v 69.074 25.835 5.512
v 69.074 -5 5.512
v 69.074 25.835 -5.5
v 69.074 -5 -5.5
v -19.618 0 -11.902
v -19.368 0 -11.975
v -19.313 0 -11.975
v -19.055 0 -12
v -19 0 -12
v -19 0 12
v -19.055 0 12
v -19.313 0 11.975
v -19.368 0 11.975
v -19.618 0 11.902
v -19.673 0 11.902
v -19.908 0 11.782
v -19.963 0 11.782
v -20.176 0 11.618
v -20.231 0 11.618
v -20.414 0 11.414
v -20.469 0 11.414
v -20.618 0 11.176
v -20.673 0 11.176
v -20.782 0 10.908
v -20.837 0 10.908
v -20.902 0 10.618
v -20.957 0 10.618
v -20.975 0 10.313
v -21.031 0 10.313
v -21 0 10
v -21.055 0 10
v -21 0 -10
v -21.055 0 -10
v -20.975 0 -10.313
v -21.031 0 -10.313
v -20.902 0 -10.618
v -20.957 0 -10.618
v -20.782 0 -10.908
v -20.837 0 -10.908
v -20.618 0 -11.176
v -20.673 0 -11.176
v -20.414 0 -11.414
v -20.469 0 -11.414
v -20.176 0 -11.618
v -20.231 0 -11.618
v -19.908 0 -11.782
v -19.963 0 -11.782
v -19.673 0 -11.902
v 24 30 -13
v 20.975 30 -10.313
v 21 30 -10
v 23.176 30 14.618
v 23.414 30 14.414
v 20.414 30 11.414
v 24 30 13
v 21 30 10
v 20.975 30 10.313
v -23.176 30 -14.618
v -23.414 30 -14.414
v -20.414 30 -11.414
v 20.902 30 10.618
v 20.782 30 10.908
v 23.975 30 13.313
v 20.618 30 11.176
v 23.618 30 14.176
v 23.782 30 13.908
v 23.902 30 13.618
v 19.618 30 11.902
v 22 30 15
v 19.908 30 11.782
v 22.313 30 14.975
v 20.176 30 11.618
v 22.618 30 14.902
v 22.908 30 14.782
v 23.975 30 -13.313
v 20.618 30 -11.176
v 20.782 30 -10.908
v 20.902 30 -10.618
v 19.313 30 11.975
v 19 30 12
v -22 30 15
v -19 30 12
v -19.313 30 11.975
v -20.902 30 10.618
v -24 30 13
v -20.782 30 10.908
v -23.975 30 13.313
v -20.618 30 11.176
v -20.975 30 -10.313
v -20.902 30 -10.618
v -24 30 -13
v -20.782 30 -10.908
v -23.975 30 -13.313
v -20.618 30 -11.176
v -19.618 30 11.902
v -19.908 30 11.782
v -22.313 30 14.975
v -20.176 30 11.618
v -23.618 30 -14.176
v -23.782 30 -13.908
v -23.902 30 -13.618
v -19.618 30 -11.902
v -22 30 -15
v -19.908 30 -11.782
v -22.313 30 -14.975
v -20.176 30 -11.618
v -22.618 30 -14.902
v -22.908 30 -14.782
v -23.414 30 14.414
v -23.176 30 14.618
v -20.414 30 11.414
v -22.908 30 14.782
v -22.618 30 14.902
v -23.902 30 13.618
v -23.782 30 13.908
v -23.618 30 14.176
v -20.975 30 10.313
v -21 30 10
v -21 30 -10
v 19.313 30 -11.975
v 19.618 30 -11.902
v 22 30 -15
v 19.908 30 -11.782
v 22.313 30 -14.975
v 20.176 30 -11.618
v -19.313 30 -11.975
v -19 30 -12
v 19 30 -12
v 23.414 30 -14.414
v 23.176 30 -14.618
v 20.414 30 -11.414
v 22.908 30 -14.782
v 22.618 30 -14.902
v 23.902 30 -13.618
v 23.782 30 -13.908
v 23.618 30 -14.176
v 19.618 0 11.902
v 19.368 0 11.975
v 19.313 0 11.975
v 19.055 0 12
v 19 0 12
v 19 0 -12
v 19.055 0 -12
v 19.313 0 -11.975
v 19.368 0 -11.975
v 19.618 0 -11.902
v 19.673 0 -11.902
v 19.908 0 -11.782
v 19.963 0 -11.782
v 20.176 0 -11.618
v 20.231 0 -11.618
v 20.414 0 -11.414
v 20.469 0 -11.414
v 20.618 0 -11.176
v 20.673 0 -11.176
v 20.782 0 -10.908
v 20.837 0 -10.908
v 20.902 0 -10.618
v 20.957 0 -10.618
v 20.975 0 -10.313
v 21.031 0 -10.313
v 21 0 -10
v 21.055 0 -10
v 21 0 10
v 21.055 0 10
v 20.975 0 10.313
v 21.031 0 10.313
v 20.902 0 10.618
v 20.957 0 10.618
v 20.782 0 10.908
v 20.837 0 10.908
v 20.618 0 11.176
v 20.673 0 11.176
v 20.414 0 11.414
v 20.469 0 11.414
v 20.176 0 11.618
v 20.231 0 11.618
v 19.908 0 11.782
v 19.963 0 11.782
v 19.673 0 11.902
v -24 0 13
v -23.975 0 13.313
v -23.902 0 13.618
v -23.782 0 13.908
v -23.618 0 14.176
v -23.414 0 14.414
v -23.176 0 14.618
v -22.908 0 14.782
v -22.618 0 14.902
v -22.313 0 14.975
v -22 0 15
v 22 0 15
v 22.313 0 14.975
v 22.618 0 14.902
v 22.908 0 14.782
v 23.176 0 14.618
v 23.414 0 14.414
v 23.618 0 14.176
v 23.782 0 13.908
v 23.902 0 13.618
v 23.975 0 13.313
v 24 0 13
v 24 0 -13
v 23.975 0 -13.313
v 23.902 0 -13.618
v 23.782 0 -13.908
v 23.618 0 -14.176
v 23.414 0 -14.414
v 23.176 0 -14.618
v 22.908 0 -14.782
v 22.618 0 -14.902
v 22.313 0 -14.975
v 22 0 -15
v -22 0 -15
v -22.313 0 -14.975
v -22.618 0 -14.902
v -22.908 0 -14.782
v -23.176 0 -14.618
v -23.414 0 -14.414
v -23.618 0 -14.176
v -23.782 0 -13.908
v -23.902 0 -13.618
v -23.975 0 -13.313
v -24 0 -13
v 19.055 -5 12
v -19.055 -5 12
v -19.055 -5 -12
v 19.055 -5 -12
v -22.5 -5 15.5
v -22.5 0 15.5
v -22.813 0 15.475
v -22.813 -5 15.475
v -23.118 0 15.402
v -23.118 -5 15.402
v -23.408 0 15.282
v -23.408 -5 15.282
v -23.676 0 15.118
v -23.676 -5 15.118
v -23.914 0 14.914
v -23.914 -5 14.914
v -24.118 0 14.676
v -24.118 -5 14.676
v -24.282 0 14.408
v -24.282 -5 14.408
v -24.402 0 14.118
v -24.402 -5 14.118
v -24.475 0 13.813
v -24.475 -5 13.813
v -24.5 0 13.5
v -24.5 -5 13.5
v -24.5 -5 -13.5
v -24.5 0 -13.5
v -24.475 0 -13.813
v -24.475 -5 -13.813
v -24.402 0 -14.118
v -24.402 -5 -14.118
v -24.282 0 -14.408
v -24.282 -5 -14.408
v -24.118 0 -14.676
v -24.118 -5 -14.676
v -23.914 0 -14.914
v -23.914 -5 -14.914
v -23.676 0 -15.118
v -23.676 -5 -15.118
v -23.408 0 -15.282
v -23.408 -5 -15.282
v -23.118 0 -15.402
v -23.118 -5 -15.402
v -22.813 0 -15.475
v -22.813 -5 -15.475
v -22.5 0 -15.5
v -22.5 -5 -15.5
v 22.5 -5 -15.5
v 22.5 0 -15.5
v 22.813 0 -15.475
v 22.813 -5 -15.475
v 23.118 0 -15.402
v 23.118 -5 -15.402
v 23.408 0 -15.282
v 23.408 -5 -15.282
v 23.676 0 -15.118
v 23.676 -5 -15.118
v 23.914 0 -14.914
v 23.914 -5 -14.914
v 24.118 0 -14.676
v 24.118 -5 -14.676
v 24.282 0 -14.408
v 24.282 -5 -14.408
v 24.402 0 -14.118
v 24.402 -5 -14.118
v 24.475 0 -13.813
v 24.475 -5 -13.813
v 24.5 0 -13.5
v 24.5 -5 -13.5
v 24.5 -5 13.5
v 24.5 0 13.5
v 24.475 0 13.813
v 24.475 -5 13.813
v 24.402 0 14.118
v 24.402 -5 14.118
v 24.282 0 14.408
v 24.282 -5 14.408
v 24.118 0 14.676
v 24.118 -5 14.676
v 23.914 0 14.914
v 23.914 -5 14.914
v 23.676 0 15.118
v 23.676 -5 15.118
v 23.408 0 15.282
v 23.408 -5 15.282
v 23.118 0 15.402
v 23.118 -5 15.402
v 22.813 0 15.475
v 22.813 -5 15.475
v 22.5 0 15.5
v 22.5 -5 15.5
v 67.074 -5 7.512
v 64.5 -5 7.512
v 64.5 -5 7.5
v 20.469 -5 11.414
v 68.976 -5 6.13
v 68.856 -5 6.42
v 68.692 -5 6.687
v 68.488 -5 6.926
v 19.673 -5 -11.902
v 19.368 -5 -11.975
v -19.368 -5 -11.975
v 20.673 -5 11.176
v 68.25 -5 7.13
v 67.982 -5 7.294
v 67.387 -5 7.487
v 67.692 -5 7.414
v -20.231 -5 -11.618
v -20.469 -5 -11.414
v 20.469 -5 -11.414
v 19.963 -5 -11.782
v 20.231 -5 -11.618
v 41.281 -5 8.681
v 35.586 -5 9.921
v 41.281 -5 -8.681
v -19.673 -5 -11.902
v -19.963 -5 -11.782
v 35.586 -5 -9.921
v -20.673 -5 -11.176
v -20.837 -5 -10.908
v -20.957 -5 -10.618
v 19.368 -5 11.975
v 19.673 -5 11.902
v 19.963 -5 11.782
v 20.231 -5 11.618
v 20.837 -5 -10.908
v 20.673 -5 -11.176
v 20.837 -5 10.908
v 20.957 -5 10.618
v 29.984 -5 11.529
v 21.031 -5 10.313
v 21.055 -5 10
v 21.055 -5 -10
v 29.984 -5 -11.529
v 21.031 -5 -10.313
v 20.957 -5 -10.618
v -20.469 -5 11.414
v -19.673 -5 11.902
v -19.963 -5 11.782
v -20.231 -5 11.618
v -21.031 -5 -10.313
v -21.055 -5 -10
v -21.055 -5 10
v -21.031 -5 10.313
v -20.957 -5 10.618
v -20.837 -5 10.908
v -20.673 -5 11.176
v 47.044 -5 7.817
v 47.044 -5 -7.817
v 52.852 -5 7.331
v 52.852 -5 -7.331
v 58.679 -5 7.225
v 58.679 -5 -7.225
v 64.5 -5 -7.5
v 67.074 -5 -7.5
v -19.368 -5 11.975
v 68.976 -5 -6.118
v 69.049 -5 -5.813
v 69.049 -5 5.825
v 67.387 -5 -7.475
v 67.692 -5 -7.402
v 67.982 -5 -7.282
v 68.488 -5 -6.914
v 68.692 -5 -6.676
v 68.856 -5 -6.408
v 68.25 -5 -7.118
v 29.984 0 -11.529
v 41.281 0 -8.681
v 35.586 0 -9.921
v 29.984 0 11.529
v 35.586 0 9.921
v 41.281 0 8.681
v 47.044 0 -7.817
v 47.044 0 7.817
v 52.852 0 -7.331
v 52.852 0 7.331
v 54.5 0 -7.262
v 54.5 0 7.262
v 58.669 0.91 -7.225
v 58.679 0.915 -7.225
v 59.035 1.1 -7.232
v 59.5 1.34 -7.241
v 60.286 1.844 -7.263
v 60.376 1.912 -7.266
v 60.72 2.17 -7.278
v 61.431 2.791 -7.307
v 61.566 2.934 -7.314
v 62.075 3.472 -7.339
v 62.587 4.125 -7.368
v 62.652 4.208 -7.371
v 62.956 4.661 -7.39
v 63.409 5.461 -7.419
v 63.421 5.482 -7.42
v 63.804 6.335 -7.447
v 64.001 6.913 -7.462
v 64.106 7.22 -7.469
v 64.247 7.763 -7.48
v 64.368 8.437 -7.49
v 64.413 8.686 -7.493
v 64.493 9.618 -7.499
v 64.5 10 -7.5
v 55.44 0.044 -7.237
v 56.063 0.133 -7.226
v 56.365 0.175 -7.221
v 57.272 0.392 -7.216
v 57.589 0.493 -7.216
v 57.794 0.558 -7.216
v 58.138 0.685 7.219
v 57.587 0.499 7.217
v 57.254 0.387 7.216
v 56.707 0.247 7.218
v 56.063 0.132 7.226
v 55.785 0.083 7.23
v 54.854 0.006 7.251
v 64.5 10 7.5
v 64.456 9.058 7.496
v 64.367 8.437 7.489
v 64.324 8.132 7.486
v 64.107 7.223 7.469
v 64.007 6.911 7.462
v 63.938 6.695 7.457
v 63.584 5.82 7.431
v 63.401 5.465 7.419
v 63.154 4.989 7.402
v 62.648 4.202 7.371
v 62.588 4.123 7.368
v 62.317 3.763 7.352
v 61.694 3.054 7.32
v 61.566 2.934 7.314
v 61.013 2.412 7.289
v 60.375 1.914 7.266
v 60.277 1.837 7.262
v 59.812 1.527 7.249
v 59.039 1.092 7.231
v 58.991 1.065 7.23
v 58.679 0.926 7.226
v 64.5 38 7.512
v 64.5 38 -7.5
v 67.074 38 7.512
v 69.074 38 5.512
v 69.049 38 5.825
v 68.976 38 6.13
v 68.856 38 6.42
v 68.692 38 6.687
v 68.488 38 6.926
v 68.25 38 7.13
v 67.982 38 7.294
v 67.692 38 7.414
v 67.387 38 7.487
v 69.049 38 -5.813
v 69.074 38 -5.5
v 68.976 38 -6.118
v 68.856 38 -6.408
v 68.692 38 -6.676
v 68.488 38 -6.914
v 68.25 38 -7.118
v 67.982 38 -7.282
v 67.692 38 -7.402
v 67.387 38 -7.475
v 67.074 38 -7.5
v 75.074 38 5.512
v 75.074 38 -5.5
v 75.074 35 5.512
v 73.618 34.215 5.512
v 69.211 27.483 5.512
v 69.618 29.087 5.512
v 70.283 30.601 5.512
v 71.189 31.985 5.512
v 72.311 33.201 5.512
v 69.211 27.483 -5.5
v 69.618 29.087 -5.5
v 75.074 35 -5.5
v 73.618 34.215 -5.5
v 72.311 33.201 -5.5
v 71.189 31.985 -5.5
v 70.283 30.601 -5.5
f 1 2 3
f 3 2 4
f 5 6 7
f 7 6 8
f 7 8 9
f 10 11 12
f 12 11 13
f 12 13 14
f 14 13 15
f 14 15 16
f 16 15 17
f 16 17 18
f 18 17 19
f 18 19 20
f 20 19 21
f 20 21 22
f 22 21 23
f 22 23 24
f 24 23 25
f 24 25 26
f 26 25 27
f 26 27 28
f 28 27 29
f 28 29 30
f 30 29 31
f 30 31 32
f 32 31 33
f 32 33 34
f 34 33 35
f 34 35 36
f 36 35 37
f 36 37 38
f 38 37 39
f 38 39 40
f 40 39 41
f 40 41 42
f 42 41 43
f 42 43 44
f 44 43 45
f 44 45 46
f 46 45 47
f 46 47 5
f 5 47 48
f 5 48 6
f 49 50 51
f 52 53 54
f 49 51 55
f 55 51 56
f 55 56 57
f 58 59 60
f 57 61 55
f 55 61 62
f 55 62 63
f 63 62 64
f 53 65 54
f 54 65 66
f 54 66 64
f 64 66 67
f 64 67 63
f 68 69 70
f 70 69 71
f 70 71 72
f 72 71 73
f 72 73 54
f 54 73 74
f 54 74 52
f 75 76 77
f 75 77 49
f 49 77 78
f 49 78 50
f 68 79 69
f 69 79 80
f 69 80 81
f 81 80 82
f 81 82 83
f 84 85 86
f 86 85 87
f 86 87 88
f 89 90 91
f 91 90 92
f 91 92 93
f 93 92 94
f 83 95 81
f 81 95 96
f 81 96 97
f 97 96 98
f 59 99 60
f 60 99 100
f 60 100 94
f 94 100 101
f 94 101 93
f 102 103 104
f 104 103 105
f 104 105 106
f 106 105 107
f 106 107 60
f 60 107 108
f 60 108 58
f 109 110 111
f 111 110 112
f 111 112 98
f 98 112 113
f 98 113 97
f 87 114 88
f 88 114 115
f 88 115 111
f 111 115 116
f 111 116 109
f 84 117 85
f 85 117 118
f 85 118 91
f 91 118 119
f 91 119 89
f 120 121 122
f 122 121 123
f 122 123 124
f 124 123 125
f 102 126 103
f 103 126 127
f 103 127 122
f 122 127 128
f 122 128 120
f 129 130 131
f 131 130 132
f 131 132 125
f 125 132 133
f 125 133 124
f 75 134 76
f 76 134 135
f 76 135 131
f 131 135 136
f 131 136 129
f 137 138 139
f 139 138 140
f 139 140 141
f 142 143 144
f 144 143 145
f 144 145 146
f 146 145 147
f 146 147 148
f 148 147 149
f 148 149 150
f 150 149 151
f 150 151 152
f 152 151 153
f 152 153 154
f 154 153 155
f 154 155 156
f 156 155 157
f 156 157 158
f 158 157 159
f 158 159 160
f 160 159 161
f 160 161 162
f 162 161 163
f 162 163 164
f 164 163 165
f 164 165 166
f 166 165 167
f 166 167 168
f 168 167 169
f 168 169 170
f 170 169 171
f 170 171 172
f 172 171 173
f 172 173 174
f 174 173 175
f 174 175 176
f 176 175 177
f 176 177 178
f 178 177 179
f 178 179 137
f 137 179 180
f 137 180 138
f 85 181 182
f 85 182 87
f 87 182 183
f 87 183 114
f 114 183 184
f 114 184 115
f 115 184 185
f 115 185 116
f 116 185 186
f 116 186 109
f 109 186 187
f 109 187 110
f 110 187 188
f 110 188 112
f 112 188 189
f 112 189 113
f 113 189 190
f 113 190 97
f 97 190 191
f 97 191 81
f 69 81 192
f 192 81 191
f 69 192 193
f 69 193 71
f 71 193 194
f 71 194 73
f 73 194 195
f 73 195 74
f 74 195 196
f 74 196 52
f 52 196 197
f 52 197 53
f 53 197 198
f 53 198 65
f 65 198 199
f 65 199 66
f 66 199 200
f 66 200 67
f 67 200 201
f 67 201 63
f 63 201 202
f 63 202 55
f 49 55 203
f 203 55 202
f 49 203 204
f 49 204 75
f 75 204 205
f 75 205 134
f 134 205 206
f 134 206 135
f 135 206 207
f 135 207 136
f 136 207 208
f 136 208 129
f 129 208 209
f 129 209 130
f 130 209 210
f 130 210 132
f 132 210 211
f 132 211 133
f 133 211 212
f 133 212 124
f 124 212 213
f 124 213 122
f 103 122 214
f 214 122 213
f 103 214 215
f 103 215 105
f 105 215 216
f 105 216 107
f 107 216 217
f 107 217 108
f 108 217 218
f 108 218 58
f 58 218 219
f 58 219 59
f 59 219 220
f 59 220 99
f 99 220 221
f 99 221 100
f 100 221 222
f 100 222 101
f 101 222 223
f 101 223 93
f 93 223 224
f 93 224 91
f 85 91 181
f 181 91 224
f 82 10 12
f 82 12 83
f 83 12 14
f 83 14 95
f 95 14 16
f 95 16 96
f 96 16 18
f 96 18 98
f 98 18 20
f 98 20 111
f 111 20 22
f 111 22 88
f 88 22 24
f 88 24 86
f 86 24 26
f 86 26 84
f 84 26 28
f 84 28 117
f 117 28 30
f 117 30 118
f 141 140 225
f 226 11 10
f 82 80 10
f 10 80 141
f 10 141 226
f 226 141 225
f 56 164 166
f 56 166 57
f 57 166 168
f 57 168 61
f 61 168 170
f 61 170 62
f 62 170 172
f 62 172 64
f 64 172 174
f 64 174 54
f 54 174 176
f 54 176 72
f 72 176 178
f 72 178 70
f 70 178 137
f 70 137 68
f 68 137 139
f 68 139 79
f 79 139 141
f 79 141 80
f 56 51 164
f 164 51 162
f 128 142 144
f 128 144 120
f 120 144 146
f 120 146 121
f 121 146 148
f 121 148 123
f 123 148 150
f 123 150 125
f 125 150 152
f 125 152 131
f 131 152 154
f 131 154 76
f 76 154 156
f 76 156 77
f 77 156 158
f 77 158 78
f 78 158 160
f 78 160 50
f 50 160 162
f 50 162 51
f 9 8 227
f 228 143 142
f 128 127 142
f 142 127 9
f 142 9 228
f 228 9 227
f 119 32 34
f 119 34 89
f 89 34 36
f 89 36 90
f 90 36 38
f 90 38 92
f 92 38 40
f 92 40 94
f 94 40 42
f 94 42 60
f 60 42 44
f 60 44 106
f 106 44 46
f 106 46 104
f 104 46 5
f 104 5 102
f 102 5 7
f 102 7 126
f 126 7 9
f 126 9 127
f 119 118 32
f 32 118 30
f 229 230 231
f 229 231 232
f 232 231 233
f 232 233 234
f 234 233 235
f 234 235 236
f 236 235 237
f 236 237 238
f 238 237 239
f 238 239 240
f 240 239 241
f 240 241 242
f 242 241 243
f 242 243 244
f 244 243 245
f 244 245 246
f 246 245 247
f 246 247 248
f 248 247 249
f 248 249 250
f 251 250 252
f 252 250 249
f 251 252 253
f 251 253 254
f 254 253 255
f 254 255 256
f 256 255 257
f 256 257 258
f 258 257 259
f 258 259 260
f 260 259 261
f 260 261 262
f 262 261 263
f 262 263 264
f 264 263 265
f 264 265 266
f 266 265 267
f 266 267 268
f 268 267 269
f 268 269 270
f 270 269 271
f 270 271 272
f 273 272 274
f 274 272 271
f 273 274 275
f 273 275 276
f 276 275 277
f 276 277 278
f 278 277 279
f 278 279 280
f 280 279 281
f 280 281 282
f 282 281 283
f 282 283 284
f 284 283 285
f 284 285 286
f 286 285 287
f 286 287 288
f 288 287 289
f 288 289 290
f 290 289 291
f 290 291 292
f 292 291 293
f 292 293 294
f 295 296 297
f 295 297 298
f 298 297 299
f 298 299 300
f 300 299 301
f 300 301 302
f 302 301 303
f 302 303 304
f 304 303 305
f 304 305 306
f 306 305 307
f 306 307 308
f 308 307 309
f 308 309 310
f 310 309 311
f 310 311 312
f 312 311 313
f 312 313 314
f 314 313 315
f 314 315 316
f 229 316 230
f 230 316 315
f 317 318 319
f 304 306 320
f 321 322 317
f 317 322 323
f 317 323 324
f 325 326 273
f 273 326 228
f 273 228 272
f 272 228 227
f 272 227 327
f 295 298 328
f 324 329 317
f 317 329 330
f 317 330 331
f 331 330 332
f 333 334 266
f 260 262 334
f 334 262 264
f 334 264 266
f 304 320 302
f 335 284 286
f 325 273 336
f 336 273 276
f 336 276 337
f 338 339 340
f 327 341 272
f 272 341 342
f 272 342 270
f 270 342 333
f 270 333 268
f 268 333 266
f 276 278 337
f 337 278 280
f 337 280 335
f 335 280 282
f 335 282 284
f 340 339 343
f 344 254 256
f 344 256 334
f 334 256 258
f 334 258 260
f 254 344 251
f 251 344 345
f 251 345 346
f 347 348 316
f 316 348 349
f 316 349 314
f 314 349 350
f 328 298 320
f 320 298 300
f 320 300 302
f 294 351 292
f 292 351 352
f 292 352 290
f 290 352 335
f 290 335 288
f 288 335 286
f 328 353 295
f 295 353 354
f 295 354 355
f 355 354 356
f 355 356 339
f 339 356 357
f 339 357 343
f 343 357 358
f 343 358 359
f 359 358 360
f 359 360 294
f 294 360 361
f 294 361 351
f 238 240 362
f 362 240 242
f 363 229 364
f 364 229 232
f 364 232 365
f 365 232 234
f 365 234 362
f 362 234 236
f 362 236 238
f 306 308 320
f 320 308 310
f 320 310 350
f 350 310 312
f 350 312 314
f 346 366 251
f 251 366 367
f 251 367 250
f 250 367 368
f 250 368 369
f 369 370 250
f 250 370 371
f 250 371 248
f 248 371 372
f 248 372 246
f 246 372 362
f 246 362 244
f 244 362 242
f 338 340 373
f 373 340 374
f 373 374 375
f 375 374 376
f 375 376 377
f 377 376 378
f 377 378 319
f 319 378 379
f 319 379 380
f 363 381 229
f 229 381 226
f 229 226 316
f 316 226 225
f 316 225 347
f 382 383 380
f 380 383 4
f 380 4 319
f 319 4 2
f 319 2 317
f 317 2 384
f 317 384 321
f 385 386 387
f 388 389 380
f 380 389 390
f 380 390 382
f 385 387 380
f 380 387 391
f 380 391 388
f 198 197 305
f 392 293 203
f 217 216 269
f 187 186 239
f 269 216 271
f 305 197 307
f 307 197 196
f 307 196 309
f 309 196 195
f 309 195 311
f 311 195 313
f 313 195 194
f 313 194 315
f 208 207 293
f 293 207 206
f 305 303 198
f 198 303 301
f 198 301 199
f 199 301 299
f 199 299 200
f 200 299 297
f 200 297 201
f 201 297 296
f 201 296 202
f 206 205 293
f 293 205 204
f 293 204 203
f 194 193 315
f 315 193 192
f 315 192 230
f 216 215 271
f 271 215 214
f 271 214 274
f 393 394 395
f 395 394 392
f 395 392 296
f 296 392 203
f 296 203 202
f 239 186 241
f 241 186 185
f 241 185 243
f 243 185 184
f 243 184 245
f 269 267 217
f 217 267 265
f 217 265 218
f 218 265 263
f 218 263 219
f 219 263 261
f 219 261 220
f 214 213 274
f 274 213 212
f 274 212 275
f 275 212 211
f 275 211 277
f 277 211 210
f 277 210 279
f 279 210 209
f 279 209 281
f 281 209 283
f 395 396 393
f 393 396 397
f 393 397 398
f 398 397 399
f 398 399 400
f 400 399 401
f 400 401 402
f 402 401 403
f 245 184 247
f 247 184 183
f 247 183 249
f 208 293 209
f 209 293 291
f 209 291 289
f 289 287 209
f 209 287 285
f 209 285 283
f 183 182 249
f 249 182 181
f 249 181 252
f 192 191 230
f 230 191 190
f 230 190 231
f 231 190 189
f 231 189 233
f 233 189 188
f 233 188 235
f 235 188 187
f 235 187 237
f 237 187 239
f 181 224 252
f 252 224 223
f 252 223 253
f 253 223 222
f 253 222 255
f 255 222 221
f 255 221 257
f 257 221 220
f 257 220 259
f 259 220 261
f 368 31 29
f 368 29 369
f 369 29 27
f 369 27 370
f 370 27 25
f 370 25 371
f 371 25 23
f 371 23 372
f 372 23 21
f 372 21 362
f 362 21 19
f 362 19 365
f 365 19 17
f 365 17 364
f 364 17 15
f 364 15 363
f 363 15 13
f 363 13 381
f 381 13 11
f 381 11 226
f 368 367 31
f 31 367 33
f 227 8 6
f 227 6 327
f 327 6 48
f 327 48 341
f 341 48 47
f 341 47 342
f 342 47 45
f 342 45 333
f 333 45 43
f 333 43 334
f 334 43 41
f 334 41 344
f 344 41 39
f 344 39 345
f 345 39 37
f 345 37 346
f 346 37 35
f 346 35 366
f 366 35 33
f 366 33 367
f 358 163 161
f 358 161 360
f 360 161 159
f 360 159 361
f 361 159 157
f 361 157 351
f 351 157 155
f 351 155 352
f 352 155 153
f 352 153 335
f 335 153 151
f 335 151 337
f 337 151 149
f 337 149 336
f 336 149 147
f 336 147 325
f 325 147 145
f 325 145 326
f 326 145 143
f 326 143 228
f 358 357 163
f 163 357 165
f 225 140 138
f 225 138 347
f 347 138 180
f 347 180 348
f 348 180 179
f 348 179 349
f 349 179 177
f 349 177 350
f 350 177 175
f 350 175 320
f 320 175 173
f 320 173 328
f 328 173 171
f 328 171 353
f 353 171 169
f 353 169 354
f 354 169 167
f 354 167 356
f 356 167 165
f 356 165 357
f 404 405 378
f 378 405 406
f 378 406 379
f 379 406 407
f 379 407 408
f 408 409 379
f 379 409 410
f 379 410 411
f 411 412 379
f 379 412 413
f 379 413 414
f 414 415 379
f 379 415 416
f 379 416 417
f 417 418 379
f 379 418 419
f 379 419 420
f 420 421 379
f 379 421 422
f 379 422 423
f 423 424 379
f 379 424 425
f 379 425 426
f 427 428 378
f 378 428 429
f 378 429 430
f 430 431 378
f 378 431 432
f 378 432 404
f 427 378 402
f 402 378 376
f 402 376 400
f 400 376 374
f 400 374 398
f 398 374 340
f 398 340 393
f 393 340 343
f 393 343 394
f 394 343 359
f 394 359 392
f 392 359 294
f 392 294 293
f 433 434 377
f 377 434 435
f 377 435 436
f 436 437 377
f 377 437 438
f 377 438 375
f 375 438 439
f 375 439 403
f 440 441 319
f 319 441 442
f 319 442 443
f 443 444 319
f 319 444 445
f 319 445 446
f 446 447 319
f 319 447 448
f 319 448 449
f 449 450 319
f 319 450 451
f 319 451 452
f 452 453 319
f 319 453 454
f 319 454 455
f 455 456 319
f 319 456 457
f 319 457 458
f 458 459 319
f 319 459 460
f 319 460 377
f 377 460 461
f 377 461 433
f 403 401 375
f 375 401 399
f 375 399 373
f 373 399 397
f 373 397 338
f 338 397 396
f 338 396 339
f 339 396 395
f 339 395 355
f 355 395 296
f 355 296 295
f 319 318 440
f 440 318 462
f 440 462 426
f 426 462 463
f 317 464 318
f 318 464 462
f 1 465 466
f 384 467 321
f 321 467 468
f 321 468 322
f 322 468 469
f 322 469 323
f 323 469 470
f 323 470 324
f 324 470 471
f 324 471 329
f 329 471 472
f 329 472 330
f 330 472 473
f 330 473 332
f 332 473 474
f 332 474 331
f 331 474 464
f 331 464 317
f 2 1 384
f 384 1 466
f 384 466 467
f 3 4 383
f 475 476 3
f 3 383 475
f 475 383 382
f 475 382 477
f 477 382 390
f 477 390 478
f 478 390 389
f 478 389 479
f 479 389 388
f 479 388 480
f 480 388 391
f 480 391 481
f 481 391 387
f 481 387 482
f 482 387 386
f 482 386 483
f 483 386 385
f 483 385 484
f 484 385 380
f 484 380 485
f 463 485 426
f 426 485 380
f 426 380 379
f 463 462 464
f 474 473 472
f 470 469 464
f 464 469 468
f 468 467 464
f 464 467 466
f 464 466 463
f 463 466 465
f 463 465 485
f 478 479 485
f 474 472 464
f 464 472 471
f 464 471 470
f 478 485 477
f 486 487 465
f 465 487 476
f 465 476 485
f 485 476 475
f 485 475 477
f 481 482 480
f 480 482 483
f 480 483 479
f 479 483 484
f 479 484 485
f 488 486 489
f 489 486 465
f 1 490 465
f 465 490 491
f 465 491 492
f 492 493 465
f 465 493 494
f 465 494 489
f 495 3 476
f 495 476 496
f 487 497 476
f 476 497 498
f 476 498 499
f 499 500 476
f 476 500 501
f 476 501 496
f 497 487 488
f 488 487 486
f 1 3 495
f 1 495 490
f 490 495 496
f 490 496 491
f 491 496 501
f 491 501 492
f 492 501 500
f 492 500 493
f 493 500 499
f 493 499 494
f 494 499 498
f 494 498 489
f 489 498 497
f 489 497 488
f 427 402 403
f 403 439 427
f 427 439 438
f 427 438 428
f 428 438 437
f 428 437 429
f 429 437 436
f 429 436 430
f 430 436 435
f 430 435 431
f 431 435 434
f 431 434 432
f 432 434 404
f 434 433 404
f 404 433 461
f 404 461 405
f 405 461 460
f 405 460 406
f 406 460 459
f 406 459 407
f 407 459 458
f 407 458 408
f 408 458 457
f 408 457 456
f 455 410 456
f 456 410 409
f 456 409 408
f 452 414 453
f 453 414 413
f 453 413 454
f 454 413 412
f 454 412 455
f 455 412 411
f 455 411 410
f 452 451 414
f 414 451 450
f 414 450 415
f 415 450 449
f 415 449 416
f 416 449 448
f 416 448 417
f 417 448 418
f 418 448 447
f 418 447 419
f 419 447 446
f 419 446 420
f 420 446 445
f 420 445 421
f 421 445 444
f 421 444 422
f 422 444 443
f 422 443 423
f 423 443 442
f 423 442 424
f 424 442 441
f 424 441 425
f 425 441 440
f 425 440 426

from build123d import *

# Parameters (mm, degrees)
SALIENTE_EXTRUIR2_DEPTH      = 30
SALIENTE_EXTRUIR3_DEPTH      = 5
SALIENTE_EXTRUIR6_DEPTH      = 5
SALIENTE_EXTRUIR7_DEPTH      = 38
SALIENTE_EXTRUIR7_DEPTH_BACK = 5
CROQUIS6_W                   = 11.011799298781469
CROQUIS6_H                   = 3.000000000000007
SALIENTE_EXTRUIR8_DEPTH      = 6
REDONDEO1_R                  = 10
REDONDEO2_R                  = 10


with BuildPart() as part:
    # Croquis1 → Saliente-Extruir2 (new body)
    with BuildSketch(Plane(origin=(0, 0, 0), x_dir=(1, 0, 0), z_dir=(0, 1, 0))):
        with BuildLine():
            Line((-22.000000000000007, 14.99999999999999), (21.999999999999964, 14.999999999999993))
            ThreePointArc((21.999999999999964, 14.999999999999993), (23.414213562373074, 14.414213562373087), (23.99999999999998, 12.999999999999977))
            Line((23.99999999999998, 12.999999999999977), (23.999999999999975, -12.999999999999996))
            ThreePointArc((23.999999999999975, -12.999999999999996), (23.41421356237307, -14.414213562373105), (21.99999999999996, -15.00000000000001))
            Line((21.99999999999996, -15.00000000000001), (-22.000000000000007, -15.000000000000007))
            ThreePointArc((-22.000000000000007, -15.000000000000007), (-23.414213562373117, -14.414213562373103), (-24.00000000000002, -12.999999999999993))
            Line((-24.00000000000002, -12.999999999999993), (-24.00000000000002, 12.999999999999975))
            ThreePointArc((-24.00000000000002, 12.999999999999975), (-23.414213562373117, 14.414213562373085), (-22.000000000000007, 14.99999999999999))
        make_face()
        with BuildLine():
            Line((-19.00000000000001, -12.00000000000001), (18.999999999999964, -12.00000000000001))
            ThreePointArc((18.999999999999964, -12.00000000000001), (20.414213562373074, -11.414213562373106), (20.999999999999982, -9.999999999999996))
            Line((20.999999999999982, -9.999999999999996), (20.999999999999982, 9.999999999999975))
            ThreePointArc((20.999999999999982, 9.999999999999975), (20.414213562373078, 11.414213562373085), (18.999999999999968, 11.99999999999999))
            Line((18.999999999999968, 11.99999999999999), (-19.000000000000007, 11.99999999999999))
            ThreePointArc((-19.000000000000007, 11.99999999999999), (-20.414213562373117, 11.414213562373083), (-21.00000000000002, 9.999999999999975))
            Line((-21.00000000000002, 9.999999999999975), (-21.00000000000002, -9.999999999999996))
            ThreePointArc((-21.00000000000002, -9.999999999999996), (-20.41421356237312, -11.414213562373106), (-19.00000000000001, -12.00000000000001))
        make_face(mode=Mode.SUBTRACT)
    extrude(amount=SALIENTE_EXTRUIR2_DEPTH)

    # Croquis3 → Saliente-Extruir3 (add)
    with BuildSketch(Plane(origin=(0, 0, 0), x_dir=(1, 0, 0), z_dir=(0, 1, 0))):
        with BuildLine():
            Line((-22.5, -15.500000000000004), (22.500000000000004, -15.500000000000004))
            ThreePointArc((22.500000000000004, -15.500000000000004), (23.9142135623731, -14.9142135623731), (24.500000000000007, -13.500000000000004))
            Line((24.500000000000007, -13.500000000000004), (24.500000000000007, 13.499999999999996))
            ThreePointArc((24.500000000000007, 13.499999999999996), (23.9142135623731, 14.914213562373092), (22.500000000000004, 15.499999999999996))
            Line((22.500000000000004, 15.499999999999996), (-22.5, 15.499999999999996))
            ThreePointArc((-22.5, 15.499999999999996), (-23.914213562373096, 14.914213562373092), (-24.5, 13.499999999999996))
            Line((-24.5, 13.499999999999996), (-24.5, -13.500000000000004))
            ThreePointArc((-24.5, -13.500000000000004), (-23.914213562373096, -14.9142135623731), (-22.5, -15.500000000000004))
        make_face()
        with BuildLine():
            Line((-19.05524973121013, -11.999999999999982), (19.055249731210118, -11.999999999999982))
            ThreePointArc((19.055249731210118, -11.999999999999982), (20.469463293583225, -11.414213562373076), (21.055249731210132, -9.99999999999997))
            Line((21.055249731210132, -9.99999999999997), (21.055249731210132, 9.999999999999975))
            ThreePointArc((21.055249731210132, 9.999999999999975), (20.469463293583225, 11.414213562373083), (19.055249731210118, 11.99999999999999))
            Line((19.055249731210118, 11.99999999999999), (-19.05524973121013, 11.99999999999999))
            ThreePointArc((-19.05524973121013, 11.99999999999999), (-20.469463293583242, 11.414213562373087), (-21.055249731210147, 9.999999999999975))
            Line((-21.055249731210147, 9.999999999999975), (-21.055249731210147, -9.99999999999997))
            ThreePointArc((-21.055249731210147, -9.99999999999997), (-20.46946329358324, -11.414213562373078), (-19.05524973121013, -11.999999999999982))
        make_face(mode=Mode.SUBTRACT)
    extrude(amount=-SALIENTE_EXTRUIR3_DEPTH)

    # Croquis4 → Saliente-Extruir6 (add)
    with BuildSketch(Plane(origin=(0, 0, 0), x_dir=(1, 0, 0), z_dir=(0, 1, 0))):
        with BuildLine():
            Line((24.500000000000007, 13.499999999999996), (24.500000000000004, -13.500000000000004))
            ThreePointArc((24.500000000000004, -13.500000000000004), (44.15530933646711, -8.202062243114), (64.5, -7.5))
            Line((64.5, -7.5), (64.5, 7.5))
            ThreePointArc((64.5, 7.5), (44.15530933646711, 8.202062243114), (24.500000000000007, 13.499999999999996))
        make_face()
    extrude(amount=-SALIENTE_EXTRUIR6_DEPTH)

    # Croquis5 → Saliente-Extruir7 (add, two sides: drawn at the far end of the back side and taken through both)
    with BuildSketch(Plane(origin=(0, 0, 0), x_dir=(1, 0, 0), z_dir=(0, 1, 0)).offset(-SALIENTE_EXTRUIR7_DEPTH_BACK)):
        with BuildLine():
            Line((64.5, 7.5), (67.07409002976354, 7.5))
            ThreePointArc((67.07409002976354, 7.5), (68.48830359213665, 6.914213562373095), (69.07409002976355, 5.499999999999986))
            Line((69.07409002976355, 5.499999999999986), (69.07409002976355, -5.511799298781482))
            ThreePointArc((69.07409002976355, -5.511799298781482), (68.48830359213665, -6.926012861154591), (67.07409002976354, -7.511799298781496))
            Line((67.07409002976354, -7.511799298781496), (64.5, -7.511799298781496))
            Line((64.5, -7.511799298781496), (64.5, 7.5))
        make_face()
    extrude(amount=SALIENTE_EXTRUIR7_DEPTH + SALIENTE_EXTRUIR7_DEPTH_BACK)

    # Croquis6 → Saliente-Extruir8 (add)
    with BuildSketch(Plane(origin=(69.07409002976355, 0, 0), x_dir=(0, 0, -1), z_dir=(1, 0, 0))):
        with Locations((-0.00589964939074816, 36.5)):
            Rectangle(CROQUIS6_W, CROQUIS6_H)
    extrude(amount=SALIENTE_EXTRUIR8_DEPTH)

    # Redondeo1
    # the kernel refuses this fillet: 10 mm, written as the material it adds along each edge
    with BuildSketch(Plane(origin=(69.07409002976355, 34.99999999999999, -5.499999999999986), x_dir=(0, -1, 0), z_dir=(0, 0, 1))) as redondeo1_piece_1:
        with BuildLine():
            CenterArc((9.165151389911681, 10), REDONDEO1_R, 203.57817847820183, 66.42182152179817)
            Line((0, 6), (-0.1833030277982317, 5.920000000000002))
            ThreePointArc((-0.1833030277982317, 5.920000000000002), (-0.20000000000000284, 3), (-0.20000000000000284, 0))
            Line((-0.20000000000000284, 0), (0, -0.20000000000000284))
            Line((0, -0.20000000000000284), (9.165151389911681, -0.20000000000000284))
            Line((9.165151389911681, -0.20000000000000284), (9.165151389911681, 0))
        make_face()
    extrude(amount=11.011799298781469)

    # Redondeo2
    # the kernel refuses this fillet: 10 mm, written as the material it adds along each edge
    with BuildSketch(Plane(origin=(64.5, 0, 32.5), x_dir=(0, 1, 0), z_dir=(0, 0, -1))) as redondeo2_piece_1_section:
        with BuildLine():
            CenterArc((REDONDEO2_R, -REDONDEO2_R), REDONDEO2_R, 90, 90)
            Line((-1.78e-15, -REDONDEO2_R), (0, 0))
            Line((0, 0), (REDONDEO2_R, 0))
        make_face()
    redondeo2_piece_1 = extrude(amount=40, mode=Mode.PRIVATE)
    redondeo2_piece_1 = redondeo2_piece_1 - Plane(origin=(57.38283856523079, 2.2812859776198304, 96.38559043487189), x_dir=(-0.3687654044862285, 0, -0.9295224991650866), z_dir=(0, 1, 0)) * Cylinder(89.17007442995858, 120, mode=Mode.PRIVATE)
    redondeo2_piece_1 = redondeo2_piece_1 - Plane(origin=(57.38283856523077, 2.2812859776198304, -96.38559043487177), x_dir=(0.07981558252886325, 0, 0.9968096472173502), z_dir=(0, 1, 0)) * Cylinder(89.17007442995846, 120, mode=Mode.PRIVATE)
    add(redondeo2_piece_1)


solid = part.part
